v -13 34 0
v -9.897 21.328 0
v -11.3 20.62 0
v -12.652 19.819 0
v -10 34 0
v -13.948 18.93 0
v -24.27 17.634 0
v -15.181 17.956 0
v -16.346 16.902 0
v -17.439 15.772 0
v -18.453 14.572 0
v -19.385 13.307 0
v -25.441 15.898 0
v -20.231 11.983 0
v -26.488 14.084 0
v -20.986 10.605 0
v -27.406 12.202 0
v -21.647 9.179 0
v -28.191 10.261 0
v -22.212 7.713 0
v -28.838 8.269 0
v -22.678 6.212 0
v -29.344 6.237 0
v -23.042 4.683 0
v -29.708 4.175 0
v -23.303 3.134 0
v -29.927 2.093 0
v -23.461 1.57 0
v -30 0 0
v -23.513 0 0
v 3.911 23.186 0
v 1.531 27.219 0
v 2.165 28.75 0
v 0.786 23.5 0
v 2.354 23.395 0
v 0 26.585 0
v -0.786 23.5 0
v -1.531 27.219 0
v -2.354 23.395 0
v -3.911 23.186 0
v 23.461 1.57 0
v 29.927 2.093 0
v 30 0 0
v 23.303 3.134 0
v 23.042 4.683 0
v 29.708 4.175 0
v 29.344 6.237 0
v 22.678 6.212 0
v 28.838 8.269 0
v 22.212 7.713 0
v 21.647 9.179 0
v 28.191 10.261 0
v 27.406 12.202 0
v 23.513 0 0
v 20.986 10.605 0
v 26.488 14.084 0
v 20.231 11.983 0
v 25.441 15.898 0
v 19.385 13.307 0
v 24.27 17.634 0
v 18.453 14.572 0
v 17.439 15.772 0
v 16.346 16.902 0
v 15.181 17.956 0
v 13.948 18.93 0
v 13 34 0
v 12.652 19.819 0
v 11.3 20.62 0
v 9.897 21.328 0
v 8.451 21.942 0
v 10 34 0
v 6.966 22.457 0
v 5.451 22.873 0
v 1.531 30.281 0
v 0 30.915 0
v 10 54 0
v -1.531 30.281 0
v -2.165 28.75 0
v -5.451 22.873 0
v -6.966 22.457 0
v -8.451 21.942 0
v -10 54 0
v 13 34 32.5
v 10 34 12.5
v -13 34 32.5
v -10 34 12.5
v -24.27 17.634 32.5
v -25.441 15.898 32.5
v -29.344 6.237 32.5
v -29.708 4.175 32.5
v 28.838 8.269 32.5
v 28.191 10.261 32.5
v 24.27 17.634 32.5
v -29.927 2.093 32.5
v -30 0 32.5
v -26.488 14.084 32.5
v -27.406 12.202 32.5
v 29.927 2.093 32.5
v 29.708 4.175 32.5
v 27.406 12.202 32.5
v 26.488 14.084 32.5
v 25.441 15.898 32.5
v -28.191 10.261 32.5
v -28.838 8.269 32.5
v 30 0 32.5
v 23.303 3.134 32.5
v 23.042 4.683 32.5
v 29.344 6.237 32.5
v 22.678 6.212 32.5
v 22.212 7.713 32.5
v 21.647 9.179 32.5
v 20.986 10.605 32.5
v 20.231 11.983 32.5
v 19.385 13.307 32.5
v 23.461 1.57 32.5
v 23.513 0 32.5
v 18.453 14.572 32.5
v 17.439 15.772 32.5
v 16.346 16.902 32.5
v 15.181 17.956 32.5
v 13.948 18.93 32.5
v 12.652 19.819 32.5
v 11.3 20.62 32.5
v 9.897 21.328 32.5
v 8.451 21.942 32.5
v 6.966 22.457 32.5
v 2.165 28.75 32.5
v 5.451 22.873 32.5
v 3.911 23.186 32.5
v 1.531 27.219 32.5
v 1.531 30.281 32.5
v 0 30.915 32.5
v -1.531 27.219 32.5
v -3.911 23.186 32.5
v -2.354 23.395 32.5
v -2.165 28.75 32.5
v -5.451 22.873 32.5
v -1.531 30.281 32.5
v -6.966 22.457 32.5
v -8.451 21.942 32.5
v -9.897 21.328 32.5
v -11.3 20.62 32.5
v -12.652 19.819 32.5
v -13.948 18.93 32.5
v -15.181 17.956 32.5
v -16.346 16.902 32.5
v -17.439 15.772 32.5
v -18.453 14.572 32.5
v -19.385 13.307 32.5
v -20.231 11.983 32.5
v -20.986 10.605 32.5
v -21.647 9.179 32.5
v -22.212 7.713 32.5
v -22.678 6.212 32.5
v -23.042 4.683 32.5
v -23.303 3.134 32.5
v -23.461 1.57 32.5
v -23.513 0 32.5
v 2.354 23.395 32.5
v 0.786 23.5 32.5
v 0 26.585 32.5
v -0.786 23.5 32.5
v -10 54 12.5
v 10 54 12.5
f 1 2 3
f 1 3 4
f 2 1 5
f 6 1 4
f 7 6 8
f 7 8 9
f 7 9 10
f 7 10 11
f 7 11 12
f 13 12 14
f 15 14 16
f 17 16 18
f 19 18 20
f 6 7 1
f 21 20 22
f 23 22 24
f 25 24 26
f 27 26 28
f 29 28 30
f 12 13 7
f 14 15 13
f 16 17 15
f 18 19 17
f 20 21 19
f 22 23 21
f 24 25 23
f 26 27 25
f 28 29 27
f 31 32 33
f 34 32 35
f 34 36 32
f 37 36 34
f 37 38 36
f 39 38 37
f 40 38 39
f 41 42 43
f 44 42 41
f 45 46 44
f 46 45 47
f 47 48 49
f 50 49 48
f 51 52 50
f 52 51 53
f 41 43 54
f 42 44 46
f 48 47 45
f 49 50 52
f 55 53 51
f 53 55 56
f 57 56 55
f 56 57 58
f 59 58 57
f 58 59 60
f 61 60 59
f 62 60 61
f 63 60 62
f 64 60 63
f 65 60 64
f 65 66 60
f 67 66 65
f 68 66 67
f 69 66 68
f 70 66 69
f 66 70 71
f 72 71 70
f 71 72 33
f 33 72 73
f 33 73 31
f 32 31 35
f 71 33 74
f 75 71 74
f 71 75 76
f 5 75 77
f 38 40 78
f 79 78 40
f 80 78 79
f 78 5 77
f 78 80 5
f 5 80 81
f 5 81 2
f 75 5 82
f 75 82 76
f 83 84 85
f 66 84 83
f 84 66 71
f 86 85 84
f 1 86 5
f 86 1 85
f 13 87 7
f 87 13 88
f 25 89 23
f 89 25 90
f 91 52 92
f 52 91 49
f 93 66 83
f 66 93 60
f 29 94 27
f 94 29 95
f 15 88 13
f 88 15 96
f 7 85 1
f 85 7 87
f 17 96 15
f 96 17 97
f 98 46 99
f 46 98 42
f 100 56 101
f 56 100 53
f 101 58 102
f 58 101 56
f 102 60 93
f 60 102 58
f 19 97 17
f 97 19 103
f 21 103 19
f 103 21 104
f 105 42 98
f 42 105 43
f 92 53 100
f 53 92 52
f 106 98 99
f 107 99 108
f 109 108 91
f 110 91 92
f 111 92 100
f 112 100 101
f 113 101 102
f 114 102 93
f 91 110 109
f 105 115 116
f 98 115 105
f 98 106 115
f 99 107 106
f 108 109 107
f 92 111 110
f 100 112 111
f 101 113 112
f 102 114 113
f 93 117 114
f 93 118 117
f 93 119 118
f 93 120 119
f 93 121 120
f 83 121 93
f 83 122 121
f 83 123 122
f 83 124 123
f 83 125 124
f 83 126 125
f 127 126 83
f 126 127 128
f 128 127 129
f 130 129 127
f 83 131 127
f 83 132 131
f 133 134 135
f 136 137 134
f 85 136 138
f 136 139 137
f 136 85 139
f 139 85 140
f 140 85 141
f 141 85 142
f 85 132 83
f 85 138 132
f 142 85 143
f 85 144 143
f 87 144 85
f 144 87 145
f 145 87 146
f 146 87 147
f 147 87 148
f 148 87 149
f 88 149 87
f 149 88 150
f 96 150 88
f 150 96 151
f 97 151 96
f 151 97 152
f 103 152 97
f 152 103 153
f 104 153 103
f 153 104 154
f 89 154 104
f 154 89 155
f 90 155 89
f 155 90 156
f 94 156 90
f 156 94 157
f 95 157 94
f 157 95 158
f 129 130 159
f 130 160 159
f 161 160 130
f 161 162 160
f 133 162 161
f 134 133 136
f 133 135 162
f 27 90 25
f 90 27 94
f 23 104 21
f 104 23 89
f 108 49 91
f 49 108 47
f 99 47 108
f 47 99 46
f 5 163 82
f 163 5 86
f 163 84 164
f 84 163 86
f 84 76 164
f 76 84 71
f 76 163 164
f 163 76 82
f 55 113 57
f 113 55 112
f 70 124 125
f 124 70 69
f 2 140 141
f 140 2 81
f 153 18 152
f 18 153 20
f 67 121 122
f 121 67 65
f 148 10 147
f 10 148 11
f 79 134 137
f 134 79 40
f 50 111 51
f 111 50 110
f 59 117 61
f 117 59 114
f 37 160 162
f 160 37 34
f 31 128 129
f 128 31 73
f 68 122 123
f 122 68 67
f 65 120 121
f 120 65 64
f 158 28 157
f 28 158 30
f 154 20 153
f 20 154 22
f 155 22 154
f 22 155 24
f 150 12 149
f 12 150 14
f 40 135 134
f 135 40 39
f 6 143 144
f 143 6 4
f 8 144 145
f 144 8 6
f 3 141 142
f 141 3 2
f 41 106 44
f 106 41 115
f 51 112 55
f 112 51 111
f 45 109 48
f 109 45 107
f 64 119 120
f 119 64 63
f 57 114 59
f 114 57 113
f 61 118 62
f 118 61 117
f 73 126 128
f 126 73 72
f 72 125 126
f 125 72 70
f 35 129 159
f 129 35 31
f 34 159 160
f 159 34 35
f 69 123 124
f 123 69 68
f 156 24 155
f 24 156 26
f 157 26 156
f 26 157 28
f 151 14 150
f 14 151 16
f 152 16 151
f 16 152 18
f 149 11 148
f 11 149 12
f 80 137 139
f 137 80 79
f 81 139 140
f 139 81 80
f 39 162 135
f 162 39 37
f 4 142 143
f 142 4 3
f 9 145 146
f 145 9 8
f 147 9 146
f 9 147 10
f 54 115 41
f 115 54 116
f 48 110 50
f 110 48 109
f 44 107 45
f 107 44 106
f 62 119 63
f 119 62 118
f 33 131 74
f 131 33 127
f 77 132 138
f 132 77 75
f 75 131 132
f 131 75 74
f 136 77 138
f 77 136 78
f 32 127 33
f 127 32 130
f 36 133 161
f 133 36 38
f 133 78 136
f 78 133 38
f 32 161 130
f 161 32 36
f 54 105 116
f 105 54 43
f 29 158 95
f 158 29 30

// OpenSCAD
// file: ../polyhole.scad
// The Cylinder is dead! Long live the Cylinder!
// A module for a polyhole by radius, based on Nophead's work.

module polyhole(h, r, cent = false)
{
    n = max(round(4 * r), 3);
    cylinder(h = h, r = r / cos(180 / n), $fn = n, center = cent);
}
// main file
// Uses 40mm m4 to connect to the frame.

use<../polyhole.scad>

LBearingConstraint();

module LBearingConstraint()
{
    difference()
    {
        union()
        {
            hull()
            {
                cylinder(h = 20+12.5, r = 47/2+6.5, $fn = 90);
                translate([0, (47/2+6.5+4)/2, (20+12.5)/2])
                    cube([20+3*2, 47/2+6.5+4, 20+12.5], center = true);
            }
            translate([0, (47/2+6.5+4+20)/2, (12.5)/2])
                cube([20, 47/2+6.5+4+20, 12.5], center = true);
        }
        polyhole(20+12.5, 47/2);
        translate([0, 47/2+(6.5+4)/2, 0])
            polyhole(20+12.5, 2);
        translate([0, -47/2-6.5, (20+12.5)/2])
            cube([(47/2+6.5)*2, (47/2+6.5)*2, 20+12.5], center = true);
    }
}
